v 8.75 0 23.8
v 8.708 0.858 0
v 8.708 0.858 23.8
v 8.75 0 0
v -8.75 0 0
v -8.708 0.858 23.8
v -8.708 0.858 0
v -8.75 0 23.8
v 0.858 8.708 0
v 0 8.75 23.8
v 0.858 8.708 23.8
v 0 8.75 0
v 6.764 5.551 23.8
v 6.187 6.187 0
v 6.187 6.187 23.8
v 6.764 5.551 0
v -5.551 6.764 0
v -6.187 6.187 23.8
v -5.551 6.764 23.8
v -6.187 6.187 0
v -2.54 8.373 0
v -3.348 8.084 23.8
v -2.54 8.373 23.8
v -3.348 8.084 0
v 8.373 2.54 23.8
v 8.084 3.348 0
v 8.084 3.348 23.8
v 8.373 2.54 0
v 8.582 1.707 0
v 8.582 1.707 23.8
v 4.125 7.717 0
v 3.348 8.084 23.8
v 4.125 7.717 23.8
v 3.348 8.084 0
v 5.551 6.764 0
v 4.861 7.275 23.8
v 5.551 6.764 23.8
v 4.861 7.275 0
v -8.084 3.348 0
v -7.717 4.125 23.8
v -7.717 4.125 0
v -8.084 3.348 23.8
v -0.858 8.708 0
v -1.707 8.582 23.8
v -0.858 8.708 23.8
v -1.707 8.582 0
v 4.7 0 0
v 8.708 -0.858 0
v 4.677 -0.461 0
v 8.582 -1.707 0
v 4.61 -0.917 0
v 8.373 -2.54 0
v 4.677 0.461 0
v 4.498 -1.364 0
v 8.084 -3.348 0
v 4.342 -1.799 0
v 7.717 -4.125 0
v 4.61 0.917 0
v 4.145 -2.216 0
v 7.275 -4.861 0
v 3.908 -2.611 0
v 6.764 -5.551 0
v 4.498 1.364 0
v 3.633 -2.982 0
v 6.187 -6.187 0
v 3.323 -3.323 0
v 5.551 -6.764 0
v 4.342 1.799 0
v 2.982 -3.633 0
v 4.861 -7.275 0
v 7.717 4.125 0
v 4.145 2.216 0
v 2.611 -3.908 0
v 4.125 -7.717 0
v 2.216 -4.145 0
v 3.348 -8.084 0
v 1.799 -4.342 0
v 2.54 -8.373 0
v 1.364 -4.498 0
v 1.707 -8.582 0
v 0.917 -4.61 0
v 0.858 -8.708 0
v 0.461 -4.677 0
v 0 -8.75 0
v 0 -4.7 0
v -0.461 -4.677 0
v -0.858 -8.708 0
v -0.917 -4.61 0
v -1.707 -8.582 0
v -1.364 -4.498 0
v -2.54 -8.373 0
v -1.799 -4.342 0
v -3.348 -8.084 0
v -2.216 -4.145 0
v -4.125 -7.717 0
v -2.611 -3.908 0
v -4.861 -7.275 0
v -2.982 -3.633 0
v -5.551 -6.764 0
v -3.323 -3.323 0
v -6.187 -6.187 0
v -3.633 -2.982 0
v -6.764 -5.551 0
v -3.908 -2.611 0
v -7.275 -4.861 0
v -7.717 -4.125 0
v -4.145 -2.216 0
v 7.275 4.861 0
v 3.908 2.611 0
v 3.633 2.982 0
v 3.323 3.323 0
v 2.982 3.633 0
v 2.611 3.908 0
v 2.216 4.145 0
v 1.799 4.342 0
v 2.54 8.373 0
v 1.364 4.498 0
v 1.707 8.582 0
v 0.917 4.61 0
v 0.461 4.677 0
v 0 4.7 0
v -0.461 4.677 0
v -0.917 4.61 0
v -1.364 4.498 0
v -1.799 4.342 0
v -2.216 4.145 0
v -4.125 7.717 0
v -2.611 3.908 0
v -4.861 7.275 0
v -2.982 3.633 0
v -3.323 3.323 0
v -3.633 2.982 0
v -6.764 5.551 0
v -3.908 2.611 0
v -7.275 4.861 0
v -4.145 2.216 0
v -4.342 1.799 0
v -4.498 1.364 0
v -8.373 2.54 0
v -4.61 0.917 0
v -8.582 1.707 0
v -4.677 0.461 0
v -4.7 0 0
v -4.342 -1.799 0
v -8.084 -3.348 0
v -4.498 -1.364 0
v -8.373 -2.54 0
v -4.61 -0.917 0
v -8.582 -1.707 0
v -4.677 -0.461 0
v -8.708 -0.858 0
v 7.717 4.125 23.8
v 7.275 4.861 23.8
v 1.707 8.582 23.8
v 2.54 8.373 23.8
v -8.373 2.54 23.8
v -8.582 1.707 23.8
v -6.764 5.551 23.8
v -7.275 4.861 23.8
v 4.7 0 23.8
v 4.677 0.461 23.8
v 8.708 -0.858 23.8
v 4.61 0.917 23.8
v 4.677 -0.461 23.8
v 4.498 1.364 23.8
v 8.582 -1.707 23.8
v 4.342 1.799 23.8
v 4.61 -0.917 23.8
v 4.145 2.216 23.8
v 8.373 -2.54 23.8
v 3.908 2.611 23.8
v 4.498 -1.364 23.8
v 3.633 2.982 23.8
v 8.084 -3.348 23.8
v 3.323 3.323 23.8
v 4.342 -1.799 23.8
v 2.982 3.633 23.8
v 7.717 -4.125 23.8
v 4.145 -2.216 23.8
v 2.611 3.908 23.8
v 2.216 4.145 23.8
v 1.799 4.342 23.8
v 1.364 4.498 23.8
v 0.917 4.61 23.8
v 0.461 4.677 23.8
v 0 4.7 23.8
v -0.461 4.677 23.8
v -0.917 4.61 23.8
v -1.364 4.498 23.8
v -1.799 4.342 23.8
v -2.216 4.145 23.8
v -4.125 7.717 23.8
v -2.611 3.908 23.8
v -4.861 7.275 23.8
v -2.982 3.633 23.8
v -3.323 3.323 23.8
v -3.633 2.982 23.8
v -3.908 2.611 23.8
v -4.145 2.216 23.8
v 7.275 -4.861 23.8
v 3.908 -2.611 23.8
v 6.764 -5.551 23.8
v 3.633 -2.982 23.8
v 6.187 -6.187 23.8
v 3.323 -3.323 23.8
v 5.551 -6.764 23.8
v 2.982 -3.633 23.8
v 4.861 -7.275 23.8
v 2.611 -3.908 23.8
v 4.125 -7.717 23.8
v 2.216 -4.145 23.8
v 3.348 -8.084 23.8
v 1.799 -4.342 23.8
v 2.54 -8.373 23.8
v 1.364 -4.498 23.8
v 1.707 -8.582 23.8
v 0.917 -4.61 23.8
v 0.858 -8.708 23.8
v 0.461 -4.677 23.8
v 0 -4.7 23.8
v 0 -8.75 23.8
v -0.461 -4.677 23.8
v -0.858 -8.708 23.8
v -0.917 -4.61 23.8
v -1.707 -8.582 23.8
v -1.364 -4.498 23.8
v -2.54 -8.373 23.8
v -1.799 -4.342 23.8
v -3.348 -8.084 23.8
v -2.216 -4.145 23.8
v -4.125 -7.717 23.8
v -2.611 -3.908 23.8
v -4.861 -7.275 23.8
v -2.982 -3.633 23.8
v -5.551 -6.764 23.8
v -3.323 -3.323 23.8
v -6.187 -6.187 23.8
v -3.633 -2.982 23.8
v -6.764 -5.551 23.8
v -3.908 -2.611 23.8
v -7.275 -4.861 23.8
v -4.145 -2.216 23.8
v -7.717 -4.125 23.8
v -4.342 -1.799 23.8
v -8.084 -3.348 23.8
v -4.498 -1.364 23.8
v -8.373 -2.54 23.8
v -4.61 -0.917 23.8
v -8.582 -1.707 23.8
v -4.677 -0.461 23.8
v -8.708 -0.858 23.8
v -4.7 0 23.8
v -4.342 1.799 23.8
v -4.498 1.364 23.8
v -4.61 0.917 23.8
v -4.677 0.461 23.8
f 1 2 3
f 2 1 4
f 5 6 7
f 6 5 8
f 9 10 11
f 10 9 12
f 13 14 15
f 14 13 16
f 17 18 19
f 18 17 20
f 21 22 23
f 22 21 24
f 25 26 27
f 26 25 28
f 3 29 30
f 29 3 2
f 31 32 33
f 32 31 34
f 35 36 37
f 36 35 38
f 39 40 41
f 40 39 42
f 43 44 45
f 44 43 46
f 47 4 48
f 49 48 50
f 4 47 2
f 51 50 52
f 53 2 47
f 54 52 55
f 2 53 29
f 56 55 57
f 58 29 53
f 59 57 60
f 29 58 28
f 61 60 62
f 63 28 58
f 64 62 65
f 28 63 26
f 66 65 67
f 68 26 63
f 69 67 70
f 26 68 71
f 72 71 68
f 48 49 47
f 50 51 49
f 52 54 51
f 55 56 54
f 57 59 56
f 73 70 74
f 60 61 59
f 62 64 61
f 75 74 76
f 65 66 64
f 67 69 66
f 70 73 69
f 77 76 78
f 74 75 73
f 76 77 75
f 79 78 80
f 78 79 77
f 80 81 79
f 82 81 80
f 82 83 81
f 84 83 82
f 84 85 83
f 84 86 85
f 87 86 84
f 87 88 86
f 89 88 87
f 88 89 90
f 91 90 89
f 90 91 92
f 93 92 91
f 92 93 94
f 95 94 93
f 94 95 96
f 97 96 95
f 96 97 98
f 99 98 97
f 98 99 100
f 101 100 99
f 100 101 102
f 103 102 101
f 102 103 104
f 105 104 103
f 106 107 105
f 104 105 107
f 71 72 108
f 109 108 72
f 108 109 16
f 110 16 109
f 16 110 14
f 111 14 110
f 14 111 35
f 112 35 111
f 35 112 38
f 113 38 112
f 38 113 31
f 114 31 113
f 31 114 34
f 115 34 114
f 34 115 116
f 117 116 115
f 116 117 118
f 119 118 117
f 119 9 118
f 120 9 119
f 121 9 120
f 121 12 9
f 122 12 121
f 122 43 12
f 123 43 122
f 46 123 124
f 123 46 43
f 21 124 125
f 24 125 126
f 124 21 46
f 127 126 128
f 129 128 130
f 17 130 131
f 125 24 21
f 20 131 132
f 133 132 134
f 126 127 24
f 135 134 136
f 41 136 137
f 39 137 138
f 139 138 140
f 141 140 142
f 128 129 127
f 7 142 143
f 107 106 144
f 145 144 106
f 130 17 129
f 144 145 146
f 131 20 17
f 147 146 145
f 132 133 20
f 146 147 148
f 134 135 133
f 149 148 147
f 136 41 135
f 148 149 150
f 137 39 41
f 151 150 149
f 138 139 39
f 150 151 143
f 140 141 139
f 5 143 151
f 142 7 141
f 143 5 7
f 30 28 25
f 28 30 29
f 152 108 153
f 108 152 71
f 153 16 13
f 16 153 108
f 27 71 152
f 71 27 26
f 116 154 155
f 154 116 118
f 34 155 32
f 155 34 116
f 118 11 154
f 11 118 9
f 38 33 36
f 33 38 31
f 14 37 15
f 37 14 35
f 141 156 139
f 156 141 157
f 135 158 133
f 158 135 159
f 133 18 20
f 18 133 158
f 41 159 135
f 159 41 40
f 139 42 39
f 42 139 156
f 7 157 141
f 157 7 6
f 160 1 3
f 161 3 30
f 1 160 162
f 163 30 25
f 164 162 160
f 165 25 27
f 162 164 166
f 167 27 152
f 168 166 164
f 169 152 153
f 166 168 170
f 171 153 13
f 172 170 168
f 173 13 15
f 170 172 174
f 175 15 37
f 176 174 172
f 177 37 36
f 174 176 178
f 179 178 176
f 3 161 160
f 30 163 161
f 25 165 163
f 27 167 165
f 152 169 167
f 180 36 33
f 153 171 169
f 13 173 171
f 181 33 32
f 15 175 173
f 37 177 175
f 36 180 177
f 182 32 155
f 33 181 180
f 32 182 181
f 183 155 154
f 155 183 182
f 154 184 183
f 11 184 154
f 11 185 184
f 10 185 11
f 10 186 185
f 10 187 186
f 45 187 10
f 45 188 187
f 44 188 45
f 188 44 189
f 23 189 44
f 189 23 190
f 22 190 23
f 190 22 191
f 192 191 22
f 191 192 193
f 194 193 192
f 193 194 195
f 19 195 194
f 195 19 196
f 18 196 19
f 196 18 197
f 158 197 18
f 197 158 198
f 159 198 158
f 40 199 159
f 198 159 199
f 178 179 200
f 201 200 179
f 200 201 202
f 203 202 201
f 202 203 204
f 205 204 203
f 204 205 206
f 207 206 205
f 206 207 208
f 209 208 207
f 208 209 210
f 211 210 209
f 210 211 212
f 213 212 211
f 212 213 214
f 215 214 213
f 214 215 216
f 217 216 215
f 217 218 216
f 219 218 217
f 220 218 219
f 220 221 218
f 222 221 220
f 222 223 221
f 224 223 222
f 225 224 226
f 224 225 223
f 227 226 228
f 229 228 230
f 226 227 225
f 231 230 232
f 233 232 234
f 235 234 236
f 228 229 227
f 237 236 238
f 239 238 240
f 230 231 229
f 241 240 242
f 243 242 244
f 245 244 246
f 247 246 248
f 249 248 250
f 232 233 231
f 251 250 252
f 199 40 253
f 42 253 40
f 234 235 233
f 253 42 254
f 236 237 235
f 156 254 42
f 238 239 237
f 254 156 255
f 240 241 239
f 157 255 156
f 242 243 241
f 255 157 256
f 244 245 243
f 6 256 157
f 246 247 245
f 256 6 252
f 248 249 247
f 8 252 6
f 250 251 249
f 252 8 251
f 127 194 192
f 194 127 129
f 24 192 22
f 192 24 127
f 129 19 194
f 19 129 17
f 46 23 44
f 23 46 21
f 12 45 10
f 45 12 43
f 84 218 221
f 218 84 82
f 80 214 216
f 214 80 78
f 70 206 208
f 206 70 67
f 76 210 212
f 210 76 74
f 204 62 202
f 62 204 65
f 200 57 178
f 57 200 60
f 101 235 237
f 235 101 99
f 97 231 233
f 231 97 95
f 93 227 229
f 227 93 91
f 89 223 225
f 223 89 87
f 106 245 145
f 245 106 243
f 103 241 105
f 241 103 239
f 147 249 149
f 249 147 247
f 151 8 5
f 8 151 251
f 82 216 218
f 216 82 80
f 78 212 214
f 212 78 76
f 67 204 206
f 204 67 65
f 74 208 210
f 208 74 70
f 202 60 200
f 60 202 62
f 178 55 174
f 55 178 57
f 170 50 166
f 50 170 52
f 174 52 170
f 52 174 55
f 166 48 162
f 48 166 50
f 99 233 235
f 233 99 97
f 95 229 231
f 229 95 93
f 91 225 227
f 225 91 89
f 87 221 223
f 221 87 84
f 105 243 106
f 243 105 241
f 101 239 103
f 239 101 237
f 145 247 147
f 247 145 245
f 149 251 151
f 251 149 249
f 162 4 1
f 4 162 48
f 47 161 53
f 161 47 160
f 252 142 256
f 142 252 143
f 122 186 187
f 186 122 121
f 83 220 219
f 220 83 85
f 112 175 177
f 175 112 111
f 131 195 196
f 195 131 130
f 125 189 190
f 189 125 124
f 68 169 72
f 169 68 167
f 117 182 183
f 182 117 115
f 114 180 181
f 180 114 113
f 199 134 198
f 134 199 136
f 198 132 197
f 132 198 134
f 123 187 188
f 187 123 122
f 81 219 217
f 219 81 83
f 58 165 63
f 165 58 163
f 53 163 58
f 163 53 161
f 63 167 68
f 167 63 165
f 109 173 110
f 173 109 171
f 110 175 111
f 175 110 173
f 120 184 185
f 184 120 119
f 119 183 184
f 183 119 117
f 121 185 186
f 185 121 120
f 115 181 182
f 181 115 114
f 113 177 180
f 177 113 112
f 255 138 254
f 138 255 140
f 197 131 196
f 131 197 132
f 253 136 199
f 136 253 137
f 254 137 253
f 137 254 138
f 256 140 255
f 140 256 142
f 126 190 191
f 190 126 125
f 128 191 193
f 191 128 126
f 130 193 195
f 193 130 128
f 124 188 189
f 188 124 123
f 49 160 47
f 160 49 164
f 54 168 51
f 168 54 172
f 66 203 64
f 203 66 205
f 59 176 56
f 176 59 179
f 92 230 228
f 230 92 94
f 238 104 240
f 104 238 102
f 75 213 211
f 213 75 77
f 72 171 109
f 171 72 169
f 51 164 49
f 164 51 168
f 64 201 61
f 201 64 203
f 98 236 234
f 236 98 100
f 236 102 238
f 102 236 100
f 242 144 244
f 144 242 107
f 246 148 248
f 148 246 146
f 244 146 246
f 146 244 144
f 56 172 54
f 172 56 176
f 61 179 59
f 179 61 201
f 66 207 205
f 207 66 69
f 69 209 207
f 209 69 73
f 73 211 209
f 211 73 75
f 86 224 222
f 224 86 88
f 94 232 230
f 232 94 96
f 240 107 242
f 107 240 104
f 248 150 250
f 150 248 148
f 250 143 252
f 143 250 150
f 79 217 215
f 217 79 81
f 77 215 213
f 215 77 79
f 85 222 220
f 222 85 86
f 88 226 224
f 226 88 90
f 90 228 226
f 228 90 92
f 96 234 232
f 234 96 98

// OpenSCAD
// Smoothness of the cylinders
$fn = 64;

// inputs
od = 17.5; // Outer diameter of the bumper
peg_od = 9.7;  // the peg that the bumper fits onto.
tightness = 0.3; // Increase this value for a tighter fit, decrease for a looser fit (mm)
id = peg_od - tightness; // Inner diameter of the bumper, calculated for a snug fit
height = 23.8; // Total height of the bumper

// Main module to create the rubber bumper
module kneeler_bumper() {
    difference() {
        cylinder(h=height, d=od);

        // Remove the inner cylinder to create the hollow core
        translate([0, 0, -1])
            cylinder(h=height + 2, d=id);
    }
}

kneeler_bumper();
